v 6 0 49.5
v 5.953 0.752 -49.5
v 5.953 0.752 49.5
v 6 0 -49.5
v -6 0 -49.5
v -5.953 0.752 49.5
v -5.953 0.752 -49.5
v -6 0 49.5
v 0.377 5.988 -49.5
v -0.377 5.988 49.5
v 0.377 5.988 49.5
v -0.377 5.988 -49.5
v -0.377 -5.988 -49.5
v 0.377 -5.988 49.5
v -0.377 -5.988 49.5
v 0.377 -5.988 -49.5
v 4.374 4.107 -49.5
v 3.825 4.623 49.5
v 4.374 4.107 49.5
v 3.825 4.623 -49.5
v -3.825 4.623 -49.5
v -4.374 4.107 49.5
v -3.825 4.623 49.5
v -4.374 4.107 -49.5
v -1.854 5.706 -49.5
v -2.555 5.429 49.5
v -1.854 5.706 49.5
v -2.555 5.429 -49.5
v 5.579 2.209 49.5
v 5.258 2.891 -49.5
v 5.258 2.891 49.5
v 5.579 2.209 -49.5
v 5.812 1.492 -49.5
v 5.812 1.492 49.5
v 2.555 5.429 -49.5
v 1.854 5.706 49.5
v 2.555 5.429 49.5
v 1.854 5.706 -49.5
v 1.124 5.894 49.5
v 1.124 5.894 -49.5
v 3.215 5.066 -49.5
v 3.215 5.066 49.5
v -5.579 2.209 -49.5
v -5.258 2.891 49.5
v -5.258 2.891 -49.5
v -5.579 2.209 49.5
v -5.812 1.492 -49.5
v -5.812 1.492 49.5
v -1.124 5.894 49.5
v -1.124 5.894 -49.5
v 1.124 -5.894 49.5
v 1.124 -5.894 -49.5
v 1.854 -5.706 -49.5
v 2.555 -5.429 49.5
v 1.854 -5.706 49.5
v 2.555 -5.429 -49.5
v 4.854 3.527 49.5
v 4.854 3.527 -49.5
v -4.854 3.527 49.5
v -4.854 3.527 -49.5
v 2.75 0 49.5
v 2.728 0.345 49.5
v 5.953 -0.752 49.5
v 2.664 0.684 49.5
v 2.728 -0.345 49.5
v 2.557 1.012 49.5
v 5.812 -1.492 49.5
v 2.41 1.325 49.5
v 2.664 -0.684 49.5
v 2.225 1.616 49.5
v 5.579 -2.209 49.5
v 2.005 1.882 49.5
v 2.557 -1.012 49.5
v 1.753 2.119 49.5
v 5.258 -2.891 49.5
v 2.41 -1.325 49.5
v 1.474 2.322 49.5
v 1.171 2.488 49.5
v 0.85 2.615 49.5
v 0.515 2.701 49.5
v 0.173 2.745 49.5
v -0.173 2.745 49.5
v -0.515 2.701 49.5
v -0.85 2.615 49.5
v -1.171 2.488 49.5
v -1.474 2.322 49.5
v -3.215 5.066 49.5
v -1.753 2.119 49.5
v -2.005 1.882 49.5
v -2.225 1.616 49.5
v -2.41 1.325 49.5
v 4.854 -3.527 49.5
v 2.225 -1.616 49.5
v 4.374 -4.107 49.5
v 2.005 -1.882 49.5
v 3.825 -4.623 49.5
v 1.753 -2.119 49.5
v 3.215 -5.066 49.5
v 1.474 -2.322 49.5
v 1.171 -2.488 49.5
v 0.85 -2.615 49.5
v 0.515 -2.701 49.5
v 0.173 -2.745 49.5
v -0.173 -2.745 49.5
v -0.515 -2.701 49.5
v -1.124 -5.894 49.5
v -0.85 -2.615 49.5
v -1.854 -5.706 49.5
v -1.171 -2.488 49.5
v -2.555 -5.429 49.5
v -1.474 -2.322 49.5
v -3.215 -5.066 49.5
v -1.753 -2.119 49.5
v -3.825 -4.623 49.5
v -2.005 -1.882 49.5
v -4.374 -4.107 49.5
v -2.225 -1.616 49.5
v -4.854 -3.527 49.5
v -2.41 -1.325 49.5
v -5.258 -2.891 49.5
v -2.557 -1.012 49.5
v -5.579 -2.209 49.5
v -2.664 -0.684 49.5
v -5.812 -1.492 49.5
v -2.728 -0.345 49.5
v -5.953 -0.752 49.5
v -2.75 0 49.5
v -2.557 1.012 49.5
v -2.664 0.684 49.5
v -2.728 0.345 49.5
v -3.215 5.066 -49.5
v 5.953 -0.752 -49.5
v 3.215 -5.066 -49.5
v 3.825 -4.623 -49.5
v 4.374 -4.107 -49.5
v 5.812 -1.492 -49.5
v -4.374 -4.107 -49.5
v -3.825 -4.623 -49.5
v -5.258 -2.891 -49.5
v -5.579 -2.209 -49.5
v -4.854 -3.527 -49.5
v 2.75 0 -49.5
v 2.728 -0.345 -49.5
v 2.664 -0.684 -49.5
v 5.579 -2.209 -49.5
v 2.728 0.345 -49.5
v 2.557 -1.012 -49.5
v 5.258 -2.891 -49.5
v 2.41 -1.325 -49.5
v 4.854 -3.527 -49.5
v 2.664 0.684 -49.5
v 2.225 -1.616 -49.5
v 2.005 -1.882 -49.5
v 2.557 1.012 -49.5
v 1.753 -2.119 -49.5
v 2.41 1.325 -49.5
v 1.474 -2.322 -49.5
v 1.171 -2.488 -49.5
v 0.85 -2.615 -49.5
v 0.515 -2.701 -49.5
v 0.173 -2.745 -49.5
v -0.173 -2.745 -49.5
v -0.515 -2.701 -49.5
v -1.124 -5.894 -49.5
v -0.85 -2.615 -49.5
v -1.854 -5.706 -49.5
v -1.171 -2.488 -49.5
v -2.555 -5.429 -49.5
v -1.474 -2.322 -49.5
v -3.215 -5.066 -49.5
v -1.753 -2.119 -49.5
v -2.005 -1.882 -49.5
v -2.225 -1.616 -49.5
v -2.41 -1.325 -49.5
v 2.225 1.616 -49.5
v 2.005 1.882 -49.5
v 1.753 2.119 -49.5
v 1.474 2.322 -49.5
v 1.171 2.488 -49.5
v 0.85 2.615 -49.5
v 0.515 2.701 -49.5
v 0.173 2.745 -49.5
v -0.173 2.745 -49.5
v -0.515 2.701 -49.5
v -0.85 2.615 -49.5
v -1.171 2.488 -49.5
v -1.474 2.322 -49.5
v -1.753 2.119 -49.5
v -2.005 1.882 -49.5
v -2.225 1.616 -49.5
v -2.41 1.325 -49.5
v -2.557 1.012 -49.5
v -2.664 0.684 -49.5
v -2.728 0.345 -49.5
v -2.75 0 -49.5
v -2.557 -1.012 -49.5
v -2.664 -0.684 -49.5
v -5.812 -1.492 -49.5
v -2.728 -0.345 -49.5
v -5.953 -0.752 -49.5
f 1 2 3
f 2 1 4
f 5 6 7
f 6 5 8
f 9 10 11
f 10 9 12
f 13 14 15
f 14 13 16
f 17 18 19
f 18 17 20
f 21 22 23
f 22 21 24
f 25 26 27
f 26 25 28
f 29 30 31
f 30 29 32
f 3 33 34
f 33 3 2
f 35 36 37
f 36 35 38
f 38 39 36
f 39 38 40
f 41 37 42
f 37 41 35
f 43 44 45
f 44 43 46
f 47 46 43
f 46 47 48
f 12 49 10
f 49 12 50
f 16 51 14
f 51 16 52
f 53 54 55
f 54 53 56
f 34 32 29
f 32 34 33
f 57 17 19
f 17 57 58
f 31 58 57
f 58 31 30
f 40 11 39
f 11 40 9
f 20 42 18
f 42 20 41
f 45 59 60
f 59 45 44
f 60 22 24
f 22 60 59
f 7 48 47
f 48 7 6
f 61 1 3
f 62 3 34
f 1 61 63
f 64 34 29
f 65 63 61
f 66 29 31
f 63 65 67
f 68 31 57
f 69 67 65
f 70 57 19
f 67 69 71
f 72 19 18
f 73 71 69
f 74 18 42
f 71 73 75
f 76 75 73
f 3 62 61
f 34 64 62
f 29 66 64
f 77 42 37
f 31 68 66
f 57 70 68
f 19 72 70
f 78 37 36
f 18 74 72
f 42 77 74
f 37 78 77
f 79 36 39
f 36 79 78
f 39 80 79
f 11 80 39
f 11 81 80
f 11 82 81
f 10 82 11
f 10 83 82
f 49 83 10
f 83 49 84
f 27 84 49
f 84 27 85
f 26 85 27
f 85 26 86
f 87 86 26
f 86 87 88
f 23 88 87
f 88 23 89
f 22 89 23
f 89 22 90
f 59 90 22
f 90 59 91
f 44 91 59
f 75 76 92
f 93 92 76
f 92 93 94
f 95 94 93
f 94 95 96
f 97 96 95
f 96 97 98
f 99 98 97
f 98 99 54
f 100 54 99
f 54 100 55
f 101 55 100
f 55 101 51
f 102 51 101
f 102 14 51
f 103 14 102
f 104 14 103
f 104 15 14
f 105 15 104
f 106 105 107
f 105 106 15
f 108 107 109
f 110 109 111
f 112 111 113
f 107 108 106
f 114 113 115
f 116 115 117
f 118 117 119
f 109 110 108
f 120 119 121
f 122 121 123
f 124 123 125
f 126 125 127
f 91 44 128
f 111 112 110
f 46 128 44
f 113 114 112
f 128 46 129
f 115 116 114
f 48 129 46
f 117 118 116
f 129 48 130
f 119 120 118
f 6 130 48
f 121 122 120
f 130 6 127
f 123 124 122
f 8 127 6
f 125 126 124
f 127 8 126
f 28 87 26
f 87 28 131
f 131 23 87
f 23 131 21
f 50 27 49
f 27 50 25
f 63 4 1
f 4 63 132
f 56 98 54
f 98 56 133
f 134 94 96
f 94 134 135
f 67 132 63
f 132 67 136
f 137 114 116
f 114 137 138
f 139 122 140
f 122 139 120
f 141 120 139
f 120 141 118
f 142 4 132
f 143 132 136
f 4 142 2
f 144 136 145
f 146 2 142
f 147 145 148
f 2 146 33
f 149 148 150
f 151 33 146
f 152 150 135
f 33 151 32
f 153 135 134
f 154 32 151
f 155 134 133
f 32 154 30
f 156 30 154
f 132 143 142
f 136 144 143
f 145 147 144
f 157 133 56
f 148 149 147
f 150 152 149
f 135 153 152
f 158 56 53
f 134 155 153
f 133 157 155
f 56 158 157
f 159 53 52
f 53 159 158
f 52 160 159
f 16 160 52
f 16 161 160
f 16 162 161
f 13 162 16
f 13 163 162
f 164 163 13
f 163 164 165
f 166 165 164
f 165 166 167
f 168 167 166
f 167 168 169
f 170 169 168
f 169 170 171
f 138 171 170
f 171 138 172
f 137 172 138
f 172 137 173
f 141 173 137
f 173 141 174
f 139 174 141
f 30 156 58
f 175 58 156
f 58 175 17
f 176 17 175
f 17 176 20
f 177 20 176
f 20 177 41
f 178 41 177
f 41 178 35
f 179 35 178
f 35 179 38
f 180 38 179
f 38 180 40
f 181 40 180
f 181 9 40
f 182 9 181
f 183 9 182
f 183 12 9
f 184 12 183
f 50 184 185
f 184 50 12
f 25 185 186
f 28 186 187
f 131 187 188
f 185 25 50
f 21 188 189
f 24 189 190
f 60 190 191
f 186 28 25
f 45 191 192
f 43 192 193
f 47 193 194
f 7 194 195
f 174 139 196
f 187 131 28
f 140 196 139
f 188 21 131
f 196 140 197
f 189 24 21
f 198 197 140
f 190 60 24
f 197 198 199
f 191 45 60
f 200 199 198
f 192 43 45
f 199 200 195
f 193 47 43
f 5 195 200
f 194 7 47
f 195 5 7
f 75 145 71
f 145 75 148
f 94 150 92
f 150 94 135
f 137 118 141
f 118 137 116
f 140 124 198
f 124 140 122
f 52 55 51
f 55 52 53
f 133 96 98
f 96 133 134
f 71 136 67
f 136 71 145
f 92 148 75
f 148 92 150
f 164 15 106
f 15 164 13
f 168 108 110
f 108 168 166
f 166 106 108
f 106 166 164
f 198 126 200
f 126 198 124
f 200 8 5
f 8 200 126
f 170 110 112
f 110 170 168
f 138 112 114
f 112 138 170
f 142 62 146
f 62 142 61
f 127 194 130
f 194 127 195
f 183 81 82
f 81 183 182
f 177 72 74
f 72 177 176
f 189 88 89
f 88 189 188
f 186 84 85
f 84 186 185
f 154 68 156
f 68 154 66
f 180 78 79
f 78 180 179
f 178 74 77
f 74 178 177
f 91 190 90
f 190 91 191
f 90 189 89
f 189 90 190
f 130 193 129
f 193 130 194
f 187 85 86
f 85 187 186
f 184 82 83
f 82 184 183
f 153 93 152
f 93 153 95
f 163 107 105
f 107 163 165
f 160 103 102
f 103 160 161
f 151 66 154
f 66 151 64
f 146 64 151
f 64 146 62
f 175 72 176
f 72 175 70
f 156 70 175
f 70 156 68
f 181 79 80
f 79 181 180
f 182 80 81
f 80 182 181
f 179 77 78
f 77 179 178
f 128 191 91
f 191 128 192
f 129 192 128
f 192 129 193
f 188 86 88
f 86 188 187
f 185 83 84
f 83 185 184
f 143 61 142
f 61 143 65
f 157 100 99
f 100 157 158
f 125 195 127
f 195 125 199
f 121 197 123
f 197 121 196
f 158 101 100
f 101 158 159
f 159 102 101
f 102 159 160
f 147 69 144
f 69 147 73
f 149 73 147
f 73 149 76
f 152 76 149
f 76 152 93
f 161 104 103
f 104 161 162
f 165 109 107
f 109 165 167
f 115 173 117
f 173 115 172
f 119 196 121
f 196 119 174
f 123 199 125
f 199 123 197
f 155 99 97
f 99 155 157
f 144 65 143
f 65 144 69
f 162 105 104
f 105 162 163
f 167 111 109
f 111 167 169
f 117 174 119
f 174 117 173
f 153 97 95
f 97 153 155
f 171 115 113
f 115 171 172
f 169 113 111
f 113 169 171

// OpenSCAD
$fn = 50;


difference() {
	union() {
		translate(v = [0, 0, -49.5000000000]) {
			cylinder(h = 99, r = 6.0000000000);
		}
	}
	union() {
		translate(v = [0, 0, -100.0000000000]) {
			cylinder(h = 200, r = 2.7500000000);
		}
	}
}
